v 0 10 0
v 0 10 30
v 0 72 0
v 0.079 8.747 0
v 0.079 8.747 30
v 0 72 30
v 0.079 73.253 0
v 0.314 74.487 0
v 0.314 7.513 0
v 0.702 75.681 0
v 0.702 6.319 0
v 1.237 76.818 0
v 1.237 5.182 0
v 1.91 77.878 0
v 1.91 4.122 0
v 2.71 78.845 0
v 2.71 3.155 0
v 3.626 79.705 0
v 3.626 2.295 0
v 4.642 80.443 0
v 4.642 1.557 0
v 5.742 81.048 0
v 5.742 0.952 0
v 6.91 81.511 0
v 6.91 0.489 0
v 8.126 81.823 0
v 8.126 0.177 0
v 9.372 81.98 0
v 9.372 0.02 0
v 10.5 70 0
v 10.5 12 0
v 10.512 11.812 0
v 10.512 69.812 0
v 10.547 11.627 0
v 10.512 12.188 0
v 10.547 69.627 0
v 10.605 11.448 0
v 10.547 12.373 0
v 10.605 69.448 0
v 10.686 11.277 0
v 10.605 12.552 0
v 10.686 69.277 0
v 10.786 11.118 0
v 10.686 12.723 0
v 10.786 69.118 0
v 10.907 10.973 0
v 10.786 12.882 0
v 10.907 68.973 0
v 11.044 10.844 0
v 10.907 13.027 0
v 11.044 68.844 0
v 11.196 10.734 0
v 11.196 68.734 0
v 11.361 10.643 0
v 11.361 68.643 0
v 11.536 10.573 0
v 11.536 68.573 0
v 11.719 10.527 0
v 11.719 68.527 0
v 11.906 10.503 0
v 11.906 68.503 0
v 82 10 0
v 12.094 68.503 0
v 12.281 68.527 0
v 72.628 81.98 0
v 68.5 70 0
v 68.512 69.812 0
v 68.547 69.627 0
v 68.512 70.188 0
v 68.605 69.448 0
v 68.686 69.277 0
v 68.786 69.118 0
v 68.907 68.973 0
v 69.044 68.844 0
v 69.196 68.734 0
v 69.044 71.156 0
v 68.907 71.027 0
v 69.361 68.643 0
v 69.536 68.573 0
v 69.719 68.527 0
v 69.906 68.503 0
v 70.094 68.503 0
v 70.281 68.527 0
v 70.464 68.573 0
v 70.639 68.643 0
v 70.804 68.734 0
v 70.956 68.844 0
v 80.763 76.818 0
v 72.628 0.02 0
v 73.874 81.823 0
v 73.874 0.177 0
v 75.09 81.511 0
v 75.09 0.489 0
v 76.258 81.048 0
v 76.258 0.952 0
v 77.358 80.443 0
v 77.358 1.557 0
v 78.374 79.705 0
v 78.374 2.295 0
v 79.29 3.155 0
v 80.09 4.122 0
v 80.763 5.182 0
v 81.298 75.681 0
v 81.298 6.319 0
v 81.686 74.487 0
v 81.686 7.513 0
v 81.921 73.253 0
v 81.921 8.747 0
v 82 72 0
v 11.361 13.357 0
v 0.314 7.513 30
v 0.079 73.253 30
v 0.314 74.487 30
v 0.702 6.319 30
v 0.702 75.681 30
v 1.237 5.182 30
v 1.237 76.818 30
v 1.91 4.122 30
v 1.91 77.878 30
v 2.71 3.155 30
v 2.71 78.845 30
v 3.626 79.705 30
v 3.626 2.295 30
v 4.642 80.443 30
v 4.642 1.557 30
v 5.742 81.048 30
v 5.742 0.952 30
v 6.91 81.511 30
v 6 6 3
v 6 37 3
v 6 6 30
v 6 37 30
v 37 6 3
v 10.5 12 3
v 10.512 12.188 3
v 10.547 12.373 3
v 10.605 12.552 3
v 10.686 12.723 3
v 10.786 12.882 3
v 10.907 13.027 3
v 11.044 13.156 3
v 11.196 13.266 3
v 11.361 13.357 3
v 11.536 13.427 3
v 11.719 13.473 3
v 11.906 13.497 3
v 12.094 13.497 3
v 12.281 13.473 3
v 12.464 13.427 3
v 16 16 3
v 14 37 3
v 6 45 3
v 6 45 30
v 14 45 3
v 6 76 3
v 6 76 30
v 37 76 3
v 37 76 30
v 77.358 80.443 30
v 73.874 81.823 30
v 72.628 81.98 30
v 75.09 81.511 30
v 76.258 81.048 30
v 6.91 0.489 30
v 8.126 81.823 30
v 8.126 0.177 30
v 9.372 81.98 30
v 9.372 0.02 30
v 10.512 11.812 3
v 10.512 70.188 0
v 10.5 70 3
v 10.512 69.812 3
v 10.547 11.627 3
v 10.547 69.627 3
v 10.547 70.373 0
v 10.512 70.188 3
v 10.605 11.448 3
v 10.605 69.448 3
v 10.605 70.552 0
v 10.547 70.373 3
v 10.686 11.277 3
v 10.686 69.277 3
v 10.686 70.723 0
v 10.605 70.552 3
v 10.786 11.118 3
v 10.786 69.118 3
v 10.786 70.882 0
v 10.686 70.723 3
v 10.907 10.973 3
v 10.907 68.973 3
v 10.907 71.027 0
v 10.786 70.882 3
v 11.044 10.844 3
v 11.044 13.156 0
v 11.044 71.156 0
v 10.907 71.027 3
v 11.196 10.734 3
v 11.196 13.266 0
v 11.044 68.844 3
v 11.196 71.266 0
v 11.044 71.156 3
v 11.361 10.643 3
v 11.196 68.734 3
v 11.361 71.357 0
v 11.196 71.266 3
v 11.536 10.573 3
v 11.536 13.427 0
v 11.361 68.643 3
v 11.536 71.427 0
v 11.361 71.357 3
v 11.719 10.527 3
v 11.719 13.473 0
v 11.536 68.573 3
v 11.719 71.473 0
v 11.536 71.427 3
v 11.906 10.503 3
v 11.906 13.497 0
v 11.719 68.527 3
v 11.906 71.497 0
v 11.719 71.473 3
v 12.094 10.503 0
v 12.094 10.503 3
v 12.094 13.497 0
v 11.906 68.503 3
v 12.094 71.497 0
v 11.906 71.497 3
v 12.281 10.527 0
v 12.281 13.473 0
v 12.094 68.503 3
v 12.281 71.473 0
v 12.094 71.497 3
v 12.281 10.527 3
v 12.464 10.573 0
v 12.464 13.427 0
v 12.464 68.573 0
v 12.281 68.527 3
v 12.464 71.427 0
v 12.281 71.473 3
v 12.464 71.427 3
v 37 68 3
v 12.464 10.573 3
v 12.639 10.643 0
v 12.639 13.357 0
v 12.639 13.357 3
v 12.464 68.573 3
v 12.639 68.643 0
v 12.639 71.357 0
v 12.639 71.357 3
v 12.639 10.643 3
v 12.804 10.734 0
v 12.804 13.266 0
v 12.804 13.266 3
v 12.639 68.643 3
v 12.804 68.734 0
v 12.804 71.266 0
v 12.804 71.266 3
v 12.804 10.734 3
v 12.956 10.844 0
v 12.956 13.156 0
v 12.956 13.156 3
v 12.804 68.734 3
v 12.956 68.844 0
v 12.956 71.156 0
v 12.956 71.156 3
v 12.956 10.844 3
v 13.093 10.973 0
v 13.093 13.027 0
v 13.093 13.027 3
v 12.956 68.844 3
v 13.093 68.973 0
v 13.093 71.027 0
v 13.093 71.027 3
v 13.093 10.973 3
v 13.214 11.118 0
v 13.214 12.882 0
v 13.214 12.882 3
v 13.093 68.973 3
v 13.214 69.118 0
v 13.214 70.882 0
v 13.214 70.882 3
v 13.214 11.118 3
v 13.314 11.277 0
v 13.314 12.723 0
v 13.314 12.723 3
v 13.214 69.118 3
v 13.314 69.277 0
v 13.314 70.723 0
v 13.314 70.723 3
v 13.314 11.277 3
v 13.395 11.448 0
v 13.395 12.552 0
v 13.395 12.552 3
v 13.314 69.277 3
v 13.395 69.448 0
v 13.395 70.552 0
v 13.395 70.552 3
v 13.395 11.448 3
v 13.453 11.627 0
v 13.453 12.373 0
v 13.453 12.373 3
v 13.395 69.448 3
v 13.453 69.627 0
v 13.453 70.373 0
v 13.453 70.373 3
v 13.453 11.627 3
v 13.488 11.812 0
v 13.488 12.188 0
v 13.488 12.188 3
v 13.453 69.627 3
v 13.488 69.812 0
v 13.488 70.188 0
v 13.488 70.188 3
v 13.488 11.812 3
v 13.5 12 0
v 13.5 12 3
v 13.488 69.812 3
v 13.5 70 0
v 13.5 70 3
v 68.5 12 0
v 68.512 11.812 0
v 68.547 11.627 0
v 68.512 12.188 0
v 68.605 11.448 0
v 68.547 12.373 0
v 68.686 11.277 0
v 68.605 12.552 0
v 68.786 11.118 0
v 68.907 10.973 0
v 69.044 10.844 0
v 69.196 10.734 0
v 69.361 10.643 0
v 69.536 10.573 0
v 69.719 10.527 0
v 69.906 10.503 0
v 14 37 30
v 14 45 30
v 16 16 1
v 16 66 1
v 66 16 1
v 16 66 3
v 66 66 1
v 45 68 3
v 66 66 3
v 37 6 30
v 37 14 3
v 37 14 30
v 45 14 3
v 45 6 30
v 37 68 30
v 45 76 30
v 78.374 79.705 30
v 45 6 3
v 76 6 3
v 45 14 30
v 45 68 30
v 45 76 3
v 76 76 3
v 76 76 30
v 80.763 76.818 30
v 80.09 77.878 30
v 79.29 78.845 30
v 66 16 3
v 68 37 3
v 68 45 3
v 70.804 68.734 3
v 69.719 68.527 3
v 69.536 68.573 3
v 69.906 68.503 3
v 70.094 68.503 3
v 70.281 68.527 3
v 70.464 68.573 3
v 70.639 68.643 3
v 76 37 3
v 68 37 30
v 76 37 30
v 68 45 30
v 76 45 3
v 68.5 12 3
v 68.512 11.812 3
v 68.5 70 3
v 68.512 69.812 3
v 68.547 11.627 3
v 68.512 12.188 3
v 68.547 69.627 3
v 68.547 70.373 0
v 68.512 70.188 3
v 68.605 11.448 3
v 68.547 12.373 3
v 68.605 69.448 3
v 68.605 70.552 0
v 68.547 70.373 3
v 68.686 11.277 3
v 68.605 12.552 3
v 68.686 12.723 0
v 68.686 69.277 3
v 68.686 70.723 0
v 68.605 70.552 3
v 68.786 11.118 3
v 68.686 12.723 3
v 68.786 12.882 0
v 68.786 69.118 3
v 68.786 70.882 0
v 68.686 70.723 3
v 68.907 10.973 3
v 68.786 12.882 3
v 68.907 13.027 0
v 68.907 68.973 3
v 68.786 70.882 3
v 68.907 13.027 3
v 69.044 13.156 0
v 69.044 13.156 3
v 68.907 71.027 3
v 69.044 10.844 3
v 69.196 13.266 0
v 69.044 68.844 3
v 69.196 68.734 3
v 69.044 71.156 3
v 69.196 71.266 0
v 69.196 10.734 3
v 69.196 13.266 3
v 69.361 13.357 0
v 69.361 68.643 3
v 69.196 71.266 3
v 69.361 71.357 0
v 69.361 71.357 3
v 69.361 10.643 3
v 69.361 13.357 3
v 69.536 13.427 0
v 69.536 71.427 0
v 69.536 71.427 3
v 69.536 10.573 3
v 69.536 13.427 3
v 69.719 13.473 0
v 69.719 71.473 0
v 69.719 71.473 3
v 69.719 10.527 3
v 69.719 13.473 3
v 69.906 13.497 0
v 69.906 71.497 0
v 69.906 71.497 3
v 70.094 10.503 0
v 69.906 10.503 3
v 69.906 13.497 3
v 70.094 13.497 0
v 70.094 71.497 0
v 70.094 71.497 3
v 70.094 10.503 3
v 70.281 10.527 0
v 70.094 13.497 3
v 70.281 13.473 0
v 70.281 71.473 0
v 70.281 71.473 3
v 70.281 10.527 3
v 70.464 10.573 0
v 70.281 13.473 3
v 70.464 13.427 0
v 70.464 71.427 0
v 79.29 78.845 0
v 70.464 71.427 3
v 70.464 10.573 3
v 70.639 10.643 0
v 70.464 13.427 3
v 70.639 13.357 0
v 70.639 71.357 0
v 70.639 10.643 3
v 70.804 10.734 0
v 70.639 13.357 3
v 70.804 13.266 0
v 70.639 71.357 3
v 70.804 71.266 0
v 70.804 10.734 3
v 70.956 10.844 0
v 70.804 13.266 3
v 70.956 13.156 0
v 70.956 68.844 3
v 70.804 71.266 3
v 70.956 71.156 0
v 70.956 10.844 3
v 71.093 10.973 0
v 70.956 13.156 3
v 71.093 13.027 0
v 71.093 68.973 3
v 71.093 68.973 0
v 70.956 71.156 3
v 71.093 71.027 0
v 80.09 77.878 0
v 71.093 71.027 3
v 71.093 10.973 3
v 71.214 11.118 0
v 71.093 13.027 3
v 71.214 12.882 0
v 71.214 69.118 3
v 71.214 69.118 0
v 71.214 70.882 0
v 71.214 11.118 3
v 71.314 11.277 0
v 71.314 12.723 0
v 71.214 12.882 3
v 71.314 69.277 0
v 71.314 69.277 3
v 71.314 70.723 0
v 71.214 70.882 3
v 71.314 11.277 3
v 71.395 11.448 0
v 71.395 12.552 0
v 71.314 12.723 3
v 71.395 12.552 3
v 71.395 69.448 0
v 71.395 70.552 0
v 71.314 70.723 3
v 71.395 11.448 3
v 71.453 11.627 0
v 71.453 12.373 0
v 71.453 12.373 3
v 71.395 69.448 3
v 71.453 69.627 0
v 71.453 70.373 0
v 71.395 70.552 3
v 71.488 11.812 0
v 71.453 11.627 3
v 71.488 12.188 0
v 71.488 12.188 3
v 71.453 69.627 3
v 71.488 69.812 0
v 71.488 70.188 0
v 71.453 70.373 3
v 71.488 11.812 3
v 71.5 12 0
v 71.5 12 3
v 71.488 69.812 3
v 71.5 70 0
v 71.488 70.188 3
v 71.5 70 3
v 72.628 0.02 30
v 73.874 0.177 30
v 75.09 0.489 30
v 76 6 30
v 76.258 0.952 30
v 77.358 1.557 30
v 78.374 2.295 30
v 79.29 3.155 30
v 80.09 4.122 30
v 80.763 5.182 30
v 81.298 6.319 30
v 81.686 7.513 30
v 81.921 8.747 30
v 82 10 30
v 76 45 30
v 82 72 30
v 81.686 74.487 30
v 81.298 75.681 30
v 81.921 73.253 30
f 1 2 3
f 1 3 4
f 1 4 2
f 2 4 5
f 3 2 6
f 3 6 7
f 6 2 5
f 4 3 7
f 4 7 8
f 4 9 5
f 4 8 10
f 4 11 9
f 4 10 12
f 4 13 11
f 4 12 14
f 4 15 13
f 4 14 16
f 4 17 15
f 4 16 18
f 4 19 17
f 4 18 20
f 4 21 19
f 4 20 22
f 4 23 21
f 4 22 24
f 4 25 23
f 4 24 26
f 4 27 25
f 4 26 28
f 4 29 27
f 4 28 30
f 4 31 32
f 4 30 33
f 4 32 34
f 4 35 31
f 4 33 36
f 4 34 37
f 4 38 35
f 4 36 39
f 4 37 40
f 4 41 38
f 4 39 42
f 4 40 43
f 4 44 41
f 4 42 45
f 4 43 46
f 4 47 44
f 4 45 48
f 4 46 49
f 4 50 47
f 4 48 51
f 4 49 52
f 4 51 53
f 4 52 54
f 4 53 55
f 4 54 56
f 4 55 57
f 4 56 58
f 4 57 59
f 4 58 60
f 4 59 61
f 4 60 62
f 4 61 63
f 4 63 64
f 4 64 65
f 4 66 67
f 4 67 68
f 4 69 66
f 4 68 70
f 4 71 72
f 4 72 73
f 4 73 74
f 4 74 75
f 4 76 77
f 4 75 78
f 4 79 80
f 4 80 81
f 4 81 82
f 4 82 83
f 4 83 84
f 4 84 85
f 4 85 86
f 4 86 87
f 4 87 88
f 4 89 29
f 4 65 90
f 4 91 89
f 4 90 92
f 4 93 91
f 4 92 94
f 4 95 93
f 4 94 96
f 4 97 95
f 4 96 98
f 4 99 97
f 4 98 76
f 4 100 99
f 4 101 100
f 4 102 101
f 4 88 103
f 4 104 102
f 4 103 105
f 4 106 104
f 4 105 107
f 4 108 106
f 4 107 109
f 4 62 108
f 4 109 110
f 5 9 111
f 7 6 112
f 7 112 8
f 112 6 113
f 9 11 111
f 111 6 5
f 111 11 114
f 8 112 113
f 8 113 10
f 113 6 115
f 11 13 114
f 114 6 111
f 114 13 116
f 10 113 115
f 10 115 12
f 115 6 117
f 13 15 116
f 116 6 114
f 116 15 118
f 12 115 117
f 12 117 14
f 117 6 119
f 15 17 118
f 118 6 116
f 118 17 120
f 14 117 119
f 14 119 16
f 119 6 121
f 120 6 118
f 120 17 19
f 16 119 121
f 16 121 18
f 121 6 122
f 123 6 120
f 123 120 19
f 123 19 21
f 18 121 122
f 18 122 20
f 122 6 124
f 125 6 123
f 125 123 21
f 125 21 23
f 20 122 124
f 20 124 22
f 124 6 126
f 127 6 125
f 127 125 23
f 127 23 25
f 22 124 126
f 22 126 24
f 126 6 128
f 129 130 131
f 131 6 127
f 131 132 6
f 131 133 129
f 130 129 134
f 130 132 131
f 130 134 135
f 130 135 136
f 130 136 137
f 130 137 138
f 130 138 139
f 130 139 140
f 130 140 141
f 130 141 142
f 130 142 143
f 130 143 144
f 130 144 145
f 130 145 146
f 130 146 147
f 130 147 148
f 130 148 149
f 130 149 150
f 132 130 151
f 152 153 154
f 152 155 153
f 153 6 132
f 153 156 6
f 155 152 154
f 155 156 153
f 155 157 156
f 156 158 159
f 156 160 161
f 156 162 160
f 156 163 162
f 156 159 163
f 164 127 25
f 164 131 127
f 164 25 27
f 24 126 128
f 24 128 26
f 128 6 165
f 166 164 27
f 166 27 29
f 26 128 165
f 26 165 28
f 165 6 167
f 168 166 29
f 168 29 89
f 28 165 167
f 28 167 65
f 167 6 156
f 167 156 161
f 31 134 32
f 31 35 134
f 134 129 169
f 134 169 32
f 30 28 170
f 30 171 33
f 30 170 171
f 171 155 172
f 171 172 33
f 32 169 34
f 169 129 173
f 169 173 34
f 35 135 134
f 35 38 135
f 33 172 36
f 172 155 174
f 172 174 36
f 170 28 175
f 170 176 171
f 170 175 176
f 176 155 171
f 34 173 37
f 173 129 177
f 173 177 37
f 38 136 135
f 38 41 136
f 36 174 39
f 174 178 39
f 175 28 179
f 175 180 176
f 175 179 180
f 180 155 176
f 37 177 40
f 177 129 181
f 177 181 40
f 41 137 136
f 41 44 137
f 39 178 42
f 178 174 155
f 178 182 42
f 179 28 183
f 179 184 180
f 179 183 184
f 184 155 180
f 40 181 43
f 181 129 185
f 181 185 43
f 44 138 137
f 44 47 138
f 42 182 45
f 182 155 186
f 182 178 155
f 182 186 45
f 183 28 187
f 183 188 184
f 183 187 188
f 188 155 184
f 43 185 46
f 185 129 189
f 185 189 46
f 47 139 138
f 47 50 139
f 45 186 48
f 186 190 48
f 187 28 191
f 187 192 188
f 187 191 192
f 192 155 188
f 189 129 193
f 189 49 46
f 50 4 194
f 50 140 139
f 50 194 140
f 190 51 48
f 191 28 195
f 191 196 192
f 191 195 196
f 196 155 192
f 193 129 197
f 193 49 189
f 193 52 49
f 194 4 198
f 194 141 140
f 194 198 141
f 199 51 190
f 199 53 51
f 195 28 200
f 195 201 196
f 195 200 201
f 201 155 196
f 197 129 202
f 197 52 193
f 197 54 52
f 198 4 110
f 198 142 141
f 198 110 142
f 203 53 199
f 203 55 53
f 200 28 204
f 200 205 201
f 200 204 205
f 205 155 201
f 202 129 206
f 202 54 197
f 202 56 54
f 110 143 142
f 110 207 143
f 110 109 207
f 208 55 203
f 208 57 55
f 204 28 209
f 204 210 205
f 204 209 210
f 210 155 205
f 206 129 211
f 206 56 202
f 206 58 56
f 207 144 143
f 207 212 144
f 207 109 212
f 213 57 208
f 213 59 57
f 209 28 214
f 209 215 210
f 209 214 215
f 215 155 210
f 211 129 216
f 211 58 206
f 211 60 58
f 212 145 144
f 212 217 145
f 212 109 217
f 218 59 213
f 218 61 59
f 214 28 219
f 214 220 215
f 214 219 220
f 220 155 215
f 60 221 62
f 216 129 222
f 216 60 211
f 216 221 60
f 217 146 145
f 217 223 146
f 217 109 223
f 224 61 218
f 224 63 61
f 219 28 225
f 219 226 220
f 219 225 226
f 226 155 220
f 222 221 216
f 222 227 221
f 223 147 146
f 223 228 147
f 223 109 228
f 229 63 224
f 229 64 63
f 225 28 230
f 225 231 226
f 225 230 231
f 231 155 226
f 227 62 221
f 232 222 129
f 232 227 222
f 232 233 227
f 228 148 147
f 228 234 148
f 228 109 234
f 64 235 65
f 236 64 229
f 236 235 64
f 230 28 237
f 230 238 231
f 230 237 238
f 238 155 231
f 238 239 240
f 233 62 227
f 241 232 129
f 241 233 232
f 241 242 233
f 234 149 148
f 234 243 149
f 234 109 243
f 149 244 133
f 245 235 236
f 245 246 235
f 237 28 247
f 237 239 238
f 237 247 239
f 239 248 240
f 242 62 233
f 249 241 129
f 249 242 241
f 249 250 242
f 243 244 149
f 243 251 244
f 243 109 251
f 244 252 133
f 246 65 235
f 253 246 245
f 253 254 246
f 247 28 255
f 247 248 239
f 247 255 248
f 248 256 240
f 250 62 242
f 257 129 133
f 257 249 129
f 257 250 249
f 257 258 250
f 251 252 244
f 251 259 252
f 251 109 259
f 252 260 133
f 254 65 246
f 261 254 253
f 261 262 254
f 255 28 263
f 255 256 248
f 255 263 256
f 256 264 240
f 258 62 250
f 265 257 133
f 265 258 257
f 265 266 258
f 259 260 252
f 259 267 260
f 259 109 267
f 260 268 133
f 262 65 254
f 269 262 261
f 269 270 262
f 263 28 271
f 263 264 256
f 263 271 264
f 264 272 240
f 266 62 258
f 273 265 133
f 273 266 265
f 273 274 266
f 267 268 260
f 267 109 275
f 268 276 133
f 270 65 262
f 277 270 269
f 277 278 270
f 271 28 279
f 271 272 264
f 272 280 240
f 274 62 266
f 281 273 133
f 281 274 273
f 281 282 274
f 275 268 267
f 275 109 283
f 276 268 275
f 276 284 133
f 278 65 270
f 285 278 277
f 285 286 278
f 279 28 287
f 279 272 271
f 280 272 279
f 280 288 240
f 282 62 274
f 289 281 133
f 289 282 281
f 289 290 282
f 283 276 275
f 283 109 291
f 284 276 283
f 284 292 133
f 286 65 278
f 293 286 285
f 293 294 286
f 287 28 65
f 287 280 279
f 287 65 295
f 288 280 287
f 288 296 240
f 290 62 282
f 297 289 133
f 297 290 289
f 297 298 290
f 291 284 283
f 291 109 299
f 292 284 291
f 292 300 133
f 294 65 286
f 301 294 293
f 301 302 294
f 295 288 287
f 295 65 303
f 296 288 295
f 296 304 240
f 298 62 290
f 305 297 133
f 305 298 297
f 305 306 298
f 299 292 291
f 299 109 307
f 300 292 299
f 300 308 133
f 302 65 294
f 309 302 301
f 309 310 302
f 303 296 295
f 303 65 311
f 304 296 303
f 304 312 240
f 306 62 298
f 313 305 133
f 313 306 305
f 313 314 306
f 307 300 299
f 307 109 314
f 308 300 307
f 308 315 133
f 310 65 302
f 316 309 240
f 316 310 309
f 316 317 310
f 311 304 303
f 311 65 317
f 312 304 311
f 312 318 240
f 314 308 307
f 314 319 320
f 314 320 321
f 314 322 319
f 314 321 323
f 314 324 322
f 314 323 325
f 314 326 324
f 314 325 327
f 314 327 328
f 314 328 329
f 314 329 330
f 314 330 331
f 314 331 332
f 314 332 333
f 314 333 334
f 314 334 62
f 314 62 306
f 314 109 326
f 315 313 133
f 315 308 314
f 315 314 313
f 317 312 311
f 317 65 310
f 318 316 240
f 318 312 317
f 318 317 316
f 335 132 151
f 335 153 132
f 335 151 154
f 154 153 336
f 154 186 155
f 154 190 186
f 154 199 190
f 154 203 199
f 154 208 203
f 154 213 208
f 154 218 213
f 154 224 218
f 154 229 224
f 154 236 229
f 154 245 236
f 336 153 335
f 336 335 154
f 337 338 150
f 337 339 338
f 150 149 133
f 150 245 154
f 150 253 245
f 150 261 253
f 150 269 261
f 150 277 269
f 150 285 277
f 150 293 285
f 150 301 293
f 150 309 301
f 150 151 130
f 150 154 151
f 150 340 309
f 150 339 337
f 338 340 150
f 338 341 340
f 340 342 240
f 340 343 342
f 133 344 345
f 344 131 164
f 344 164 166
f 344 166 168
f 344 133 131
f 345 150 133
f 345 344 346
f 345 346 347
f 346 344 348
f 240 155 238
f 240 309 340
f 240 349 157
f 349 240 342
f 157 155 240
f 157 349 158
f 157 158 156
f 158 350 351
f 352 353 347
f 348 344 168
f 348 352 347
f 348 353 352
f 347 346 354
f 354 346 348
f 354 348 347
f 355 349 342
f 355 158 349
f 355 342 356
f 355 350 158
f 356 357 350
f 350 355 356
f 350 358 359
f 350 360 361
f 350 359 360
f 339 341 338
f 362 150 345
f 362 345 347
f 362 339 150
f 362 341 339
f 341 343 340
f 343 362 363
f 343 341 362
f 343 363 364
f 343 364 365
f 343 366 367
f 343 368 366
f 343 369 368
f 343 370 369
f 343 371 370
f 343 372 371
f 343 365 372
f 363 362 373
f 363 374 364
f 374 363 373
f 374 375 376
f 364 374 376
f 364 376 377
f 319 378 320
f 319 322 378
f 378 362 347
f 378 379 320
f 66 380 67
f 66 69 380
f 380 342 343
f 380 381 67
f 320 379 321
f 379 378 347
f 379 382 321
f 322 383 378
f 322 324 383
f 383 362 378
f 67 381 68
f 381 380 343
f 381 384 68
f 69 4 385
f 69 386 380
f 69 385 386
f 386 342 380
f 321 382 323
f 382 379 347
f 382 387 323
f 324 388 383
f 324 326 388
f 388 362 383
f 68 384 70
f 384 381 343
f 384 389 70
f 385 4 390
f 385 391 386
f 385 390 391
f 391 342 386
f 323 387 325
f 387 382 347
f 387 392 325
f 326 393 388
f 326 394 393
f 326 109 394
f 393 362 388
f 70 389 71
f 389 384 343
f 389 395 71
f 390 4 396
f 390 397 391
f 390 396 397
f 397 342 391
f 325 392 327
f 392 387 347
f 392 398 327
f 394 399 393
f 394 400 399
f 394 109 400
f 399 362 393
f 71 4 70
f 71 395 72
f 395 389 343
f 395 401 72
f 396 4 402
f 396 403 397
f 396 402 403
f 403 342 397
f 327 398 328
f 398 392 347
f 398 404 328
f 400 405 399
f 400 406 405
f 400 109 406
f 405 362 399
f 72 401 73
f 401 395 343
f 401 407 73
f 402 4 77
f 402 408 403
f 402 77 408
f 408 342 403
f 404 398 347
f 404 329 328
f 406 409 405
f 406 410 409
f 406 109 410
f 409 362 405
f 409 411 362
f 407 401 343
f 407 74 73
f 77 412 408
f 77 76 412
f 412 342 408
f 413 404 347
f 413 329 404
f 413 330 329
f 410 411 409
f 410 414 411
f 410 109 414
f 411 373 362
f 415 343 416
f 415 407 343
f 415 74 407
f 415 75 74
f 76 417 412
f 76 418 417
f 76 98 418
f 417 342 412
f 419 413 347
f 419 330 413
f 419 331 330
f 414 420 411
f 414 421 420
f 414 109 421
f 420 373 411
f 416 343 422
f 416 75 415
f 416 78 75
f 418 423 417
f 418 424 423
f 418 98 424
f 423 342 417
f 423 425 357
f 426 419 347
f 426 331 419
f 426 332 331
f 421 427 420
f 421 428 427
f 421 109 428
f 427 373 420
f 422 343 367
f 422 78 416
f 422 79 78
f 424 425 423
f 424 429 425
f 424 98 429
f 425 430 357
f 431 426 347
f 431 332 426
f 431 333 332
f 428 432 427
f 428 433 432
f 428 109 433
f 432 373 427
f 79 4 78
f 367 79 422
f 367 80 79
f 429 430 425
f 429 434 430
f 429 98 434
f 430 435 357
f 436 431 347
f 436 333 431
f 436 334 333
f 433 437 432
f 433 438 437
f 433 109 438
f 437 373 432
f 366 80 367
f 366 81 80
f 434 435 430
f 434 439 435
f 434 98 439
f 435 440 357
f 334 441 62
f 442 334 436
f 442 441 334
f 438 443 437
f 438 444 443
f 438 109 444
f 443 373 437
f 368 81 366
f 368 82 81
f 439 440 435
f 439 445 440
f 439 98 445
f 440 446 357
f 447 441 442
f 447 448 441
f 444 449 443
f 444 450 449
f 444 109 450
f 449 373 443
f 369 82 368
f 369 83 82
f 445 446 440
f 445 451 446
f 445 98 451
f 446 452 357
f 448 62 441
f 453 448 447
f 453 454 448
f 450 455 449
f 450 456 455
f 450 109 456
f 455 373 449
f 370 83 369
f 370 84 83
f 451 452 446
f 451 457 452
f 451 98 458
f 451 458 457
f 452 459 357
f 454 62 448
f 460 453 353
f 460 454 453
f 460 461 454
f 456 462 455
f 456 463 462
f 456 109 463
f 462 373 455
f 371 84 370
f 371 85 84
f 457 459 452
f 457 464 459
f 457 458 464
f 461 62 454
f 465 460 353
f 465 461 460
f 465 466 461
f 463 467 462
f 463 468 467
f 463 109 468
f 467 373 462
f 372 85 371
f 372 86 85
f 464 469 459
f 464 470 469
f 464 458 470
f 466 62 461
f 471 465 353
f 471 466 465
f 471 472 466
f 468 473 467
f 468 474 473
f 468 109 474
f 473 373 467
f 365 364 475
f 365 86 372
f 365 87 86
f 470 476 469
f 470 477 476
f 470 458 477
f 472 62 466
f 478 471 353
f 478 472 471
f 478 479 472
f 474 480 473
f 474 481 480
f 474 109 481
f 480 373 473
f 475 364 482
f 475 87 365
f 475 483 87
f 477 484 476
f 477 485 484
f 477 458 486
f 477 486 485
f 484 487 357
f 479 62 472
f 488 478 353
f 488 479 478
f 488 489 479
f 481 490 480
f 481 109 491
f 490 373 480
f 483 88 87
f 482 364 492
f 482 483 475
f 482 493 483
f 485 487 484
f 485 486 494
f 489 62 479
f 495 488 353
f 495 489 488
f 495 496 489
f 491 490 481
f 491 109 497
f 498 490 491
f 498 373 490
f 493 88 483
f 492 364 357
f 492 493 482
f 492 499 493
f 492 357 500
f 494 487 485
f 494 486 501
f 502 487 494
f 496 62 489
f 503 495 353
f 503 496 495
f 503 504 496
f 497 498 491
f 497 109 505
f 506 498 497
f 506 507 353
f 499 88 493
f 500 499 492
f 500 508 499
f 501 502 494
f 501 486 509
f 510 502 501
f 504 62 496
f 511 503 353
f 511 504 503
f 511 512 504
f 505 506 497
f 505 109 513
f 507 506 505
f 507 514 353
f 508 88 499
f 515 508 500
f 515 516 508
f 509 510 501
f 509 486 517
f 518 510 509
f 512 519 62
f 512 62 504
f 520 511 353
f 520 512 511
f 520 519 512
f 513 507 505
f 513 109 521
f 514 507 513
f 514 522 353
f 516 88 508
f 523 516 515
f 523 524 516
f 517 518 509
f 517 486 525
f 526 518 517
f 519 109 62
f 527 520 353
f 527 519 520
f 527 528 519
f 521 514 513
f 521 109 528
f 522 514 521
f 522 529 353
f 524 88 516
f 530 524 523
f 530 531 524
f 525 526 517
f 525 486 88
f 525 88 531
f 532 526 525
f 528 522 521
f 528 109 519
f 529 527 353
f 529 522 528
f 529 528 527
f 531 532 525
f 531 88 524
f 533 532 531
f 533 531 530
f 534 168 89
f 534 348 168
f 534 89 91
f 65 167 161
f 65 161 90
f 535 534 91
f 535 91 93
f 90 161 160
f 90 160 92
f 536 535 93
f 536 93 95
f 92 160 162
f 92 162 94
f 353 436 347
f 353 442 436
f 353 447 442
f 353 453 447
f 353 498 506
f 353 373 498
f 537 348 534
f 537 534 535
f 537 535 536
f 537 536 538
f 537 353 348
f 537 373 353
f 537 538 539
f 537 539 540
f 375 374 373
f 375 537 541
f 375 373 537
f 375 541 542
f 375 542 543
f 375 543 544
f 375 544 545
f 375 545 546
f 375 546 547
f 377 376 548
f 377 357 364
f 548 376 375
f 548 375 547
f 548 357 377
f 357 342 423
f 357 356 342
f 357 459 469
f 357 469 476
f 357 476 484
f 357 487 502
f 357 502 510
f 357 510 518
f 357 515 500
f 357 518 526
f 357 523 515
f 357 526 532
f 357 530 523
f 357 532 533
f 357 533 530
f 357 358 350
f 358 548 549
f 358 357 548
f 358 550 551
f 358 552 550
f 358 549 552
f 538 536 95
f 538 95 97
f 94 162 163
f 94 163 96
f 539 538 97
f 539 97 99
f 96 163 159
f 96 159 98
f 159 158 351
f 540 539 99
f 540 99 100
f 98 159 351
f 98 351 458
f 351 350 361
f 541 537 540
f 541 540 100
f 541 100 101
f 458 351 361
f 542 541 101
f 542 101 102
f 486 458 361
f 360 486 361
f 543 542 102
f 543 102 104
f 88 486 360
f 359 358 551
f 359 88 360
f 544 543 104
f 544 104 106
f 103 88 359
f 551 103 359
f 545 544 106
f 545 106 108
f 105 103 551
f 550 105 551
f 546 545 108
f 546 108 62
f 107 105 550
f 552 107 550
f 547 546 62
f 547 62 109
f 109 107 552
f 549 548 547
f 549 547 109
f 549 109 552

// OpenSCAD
$fn=50;
union() {
    difference() {
        translate([10, 10, 0])
            minkowski() {
        //        cube([82, 82, 30]);
                cube([62, 62, 29]);
                cylinder(r=10,h=1);
            }    
        // volume intérieur
        translate([6, 6, 3])
            cube([70, 70, 28]);
        // décaissement du fond
        translate([16, 16, 1])
            cube([50, 50, 29]);
        // trous de fixation
        translate([12, 12, -1])
            cylinder(5, 1.5, 1.5);
        translate([70, 12, -1])
            cylinder(5, 1.5, 1.5);
        translate([12, 70, -1])
            cylinder(5, 1.5, 1.5);
        translate([70, 70, -1])
            cylinder(5, 1.5, 1.5);
    }
    // plots de fixation de la plaque
    translate([37, 6, 0])
        cube([8, 8, 30]);
    translate([6, 37, 0])
        cube([8, 8, 30]);
    translate([37, 68, 0])
        cube([8, 8, 30]);
    translate([68, 37, 0])
        cube([8, 8, 30]);
}
